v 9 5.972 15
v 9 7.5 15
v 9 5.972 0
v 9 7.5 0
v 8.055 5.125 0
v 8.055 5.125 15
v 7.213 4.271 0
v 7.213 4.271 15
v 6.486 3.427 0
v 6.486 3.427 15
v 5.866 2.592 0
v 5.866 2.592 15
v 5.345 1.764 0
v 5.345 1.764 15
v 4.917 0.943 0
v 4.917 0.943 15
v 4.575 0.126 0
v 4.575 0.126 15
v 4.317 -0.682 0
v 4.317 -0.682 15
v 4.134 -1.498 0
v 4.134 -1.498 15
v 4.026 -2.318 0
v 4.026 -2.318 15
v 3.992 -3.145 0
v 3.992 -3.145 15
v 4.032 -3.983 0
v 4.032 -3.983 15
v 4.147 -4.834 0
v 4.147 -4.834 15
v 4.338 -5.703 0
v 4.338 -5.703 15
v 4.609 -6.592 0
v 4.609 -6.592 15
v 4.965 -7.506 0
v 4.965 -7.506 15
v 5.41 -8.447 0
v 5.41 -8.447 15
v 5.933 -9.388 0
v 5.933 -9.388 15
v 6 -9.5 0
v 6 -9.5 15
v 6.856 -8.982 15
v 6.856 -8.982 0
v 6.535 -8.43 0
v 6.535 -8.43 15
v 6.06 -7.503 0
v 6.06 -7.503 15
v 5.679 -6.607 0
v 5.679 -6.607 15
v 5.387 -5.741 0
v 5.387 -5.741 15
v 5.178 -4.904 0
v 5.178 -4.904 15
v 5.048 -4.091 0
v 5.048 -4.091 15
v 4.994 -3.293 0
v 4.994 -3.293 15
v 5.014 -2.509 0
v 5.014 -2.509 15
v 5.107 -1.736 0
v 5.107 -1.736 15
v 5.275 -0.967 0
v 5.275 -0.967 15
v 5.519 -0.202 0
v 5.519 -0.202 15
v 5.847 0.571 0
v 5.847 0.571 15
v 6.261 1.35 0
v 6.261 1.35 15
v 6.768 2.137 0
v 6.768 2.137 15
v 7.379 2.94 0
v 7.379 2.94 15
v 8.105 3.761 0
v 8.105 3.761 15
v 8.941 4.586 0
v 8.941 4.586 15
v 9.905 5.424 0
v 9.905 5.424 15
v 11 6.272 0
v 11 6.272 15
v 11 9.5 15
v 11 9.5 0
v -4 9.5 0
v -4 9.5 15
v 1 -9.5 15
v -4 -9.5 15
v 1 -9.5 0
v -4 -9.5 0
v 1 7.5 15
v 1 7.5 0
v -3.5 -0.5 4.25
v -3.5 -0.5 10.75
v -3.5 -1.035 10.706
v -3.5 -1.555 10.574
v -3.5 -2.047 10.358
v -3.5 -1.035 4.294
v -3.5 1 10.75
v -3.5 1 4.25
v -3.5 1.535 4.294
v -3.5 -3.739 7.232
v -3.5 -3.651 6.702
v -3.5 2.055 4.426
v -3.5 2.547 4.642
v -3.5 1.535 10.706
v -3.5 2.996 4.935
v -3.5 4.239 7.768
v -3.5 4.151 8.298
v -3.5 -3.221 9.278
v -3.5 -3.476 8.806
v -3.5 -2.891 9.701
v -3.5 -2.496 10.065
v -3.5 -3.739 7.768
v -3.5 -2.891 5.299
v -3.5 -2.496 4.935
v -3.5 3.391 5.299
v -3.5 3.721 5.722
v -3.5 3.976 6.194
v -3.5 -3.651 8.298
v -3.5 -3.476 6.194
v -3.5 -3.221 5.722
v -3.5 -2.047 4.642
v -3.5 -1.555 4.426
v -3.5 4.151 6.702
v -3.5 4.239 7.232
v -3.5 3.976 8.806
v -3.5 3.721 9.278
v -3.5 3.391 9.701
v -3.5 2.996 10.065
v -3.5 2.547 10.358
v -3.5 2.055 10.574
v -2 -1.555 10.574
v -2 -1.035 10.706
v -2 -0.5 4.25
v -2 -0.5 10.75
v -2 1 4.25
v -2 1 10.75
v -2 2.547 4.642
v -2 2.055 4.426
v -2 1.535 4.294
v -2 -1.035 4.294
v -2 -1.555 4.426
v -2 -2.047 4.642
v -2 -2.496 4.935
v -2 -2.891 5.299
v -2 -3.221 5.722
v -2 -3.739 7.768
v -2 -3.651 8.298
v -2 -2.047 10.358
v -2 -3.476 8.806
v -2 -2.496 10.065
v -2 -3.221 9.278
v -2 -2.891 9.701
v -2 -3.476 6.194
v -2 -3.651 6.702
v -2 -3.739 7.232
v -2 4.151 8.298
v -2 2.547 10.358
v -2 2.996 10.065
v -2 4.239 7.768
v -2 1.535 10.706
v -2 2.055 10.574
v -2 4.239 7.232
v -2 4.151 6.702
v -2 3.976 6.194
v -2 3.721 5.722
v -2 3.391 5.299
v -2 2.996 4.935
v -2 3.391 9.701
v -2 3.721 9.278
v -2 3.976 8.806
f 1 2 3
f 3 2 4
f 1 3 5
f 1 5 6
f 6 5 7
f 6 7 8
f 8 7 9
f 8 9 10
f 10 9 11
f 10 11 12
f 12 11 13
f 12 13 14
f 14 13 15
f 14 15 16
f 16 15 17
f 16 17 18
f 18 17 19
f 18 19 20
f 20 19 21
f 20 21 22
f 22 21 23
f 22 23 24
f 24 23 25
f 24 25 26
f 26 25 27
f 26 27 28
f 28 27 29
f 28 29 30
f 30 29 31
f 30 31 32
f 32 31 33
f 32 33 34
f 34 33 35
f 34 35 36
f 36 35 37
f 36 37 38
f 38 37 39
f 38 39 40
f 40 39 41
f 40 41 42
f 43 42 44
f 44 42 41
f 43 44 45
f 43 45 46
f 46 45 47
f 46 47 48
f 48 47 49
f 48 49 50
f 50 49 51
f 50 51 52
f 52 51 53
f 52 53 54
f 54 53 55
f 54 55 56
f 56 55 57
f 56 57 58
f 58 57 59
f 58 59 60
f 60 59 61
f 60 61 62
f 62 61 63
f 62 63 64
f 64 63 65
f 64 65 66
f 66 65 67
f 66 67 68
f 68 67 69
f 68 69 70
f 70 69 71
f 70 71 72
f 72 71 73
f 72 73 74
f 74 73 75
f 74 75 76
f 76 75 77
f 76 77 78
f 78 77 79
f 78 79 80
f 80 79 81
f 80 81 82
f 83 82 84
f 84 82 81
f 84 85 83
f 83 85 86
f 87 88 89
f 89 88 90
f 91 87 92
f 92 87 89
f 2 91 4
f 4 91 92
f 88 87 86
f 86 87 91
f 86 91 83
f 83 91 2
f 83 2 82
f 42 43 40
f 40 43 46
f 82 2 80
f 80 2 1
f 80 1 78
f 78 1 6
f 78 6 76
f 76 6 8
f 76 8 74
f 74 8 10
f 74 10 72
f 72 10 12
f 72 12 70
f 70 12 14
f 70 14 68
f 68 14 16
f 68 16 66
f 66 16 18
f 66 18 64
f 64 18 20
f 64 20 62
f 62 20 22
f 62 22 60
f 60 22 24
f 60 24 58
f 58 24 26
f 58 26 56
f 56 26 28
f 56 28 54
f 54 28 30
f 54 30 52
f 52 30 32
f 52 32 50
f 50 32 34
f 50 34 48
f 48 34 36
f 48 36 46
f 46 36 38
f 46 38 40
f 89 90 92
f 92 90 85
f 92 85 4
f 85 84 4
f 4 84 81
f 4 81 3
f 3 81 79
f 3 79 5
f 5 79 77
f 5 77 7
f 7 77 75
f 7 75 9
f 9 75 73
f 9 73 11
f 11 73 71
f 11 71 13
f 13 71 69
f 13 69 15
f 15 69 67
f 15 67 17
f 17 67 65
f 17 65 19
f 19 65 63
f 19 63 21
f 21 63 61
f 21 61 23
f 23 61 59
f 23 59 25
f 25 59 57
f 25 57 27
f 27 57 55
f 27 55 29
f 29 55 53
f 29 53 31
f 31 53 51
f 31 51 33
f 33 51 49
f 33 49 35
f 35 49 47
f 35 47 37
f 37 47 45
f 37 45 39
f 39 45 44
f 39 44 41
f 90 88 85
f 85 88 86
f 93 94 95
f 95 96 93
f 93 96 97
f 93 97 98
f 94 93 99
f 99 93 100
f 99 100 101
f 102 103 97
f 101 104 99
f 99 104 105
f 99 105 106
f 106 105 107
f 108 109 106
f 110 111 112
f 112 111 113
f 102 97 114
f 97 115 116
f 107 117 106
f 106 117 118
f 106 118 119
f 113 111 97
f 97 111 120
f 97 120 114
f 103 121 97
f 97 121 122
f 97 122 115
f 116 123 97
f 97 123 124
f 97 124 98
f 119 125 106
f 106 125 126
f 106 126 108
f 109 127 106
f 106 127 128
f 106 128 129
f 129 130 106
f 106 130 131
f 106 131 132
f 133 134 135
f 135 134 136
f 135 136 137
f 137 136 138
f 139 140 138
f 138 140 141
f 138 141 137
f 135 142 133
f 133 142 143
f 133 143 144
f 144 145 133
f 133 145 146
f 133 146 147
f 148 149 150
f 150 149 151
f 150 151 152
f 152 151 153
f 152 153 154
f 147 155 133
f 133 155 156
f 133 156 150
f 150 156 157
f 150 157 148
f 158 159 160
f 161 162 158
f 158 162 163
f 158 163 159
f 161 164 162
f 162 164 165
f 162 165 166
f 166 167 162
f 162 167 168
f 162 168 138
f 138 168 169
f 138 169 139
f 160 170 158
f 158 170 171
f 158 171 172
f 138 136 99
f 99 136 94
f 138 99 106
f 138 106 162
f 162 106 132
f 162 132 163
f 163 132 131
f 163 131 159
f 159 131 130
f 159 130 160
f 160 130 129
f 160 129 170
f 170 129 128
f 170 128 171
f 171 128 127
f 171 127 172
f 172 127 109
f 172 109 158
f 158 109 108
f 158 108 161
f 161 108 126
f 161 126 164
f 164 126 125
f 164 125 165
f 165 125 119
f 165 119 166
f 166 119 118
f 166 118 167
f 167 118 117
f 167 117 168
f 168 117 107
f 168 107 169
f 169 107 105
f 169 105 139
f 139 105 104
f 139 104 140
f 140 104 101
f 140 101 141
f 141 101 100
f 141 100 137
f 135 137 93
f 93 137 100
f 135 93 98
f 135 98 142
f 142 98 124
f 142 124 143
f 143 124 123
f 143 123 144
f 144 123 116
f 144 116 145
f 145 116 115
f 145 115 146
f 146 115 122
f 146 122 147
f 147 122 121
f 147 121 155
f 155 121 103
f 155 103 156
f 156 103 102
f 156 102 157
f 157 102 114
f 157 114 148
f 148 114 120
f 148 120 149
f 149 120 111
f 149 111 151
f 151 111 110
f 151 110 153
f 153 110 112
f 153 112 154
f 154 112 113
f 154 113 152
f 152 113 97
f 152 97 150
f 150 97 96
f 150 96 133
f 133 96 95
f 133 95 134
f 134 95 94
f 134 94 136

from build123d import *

# Parameters (mm, degrees)
AUFSATZ_LINEAR_AUSTRAGEN1_DEPTH = 15
SKIZZE2_W                       = 15
SKIZZE2_H                       = 19
AUFSATZ_LINEAR_AUSTRAGEN2_DEPTH = 3
SCHNITT_LINEAR_AUSTRAGEN1_DEPTH = 2
SKIZZE5_W                       = 15
SKIZZE5_H                       = 19
AUFSATZ_LINEAR_AUSTRAGEN4_DEPTH = 0.5


# Read off the part's stored shape, not the designer's step: Aufsatz-Linear austragen1
with BuildPart() as part:
    # Aufsatz-Linear austragen1 outline → Aufsatz-Linear austragen1 (new body)
    with BuildSketch(Plane.XY):
        with BuildLine():
            Line((9, 7.5), (9, 5.971762746))
            add(Edge.make_bspline(
                [(9, 5.971762746), (0.820844208, -0.941876975), (6, -9.5)],
                knots=[0.100732064, 0.100732064, 0.100732064, 1, 1, 1], degree=2))
            Line((6, -9.5), (6.855533767, -8.982252983))
            add(Edge.make_bspline(
                [(11, 6.271626074), (10.77340825, 6.105599677), (10.141366733, 5.627846644), (8.84701886, 4.547968637), (7.334591853, 2.994846091), (6.045831159, 1.119520738), (5.251441489, -0.76880078), (4.926102544, -2.686703365), (5.056978024, -4.672427827), (5.564804841, -6.418461308), (6.213216116, -7.858576344), (6.635759495, -8.619102834), (6.855533767, -8.982252983)],
                knots=[0.028407204, 0.028407204, 0.028407204, 0.028407204, 0.0625, 0.125, 0.25, 0.375, 0.5, 0.625, 0.75, 0.875, 0.9375, 1, 1, 1, 1], degree=3))
            Line((11, 6.271626074), (11, 9.5))
            Line((11, 9.5), (-1, 9.5))
            Line((-1, 9.5), (-1, -9.5))
            Line((-1, -9.5), (1, -9.5))
            Line((1, -9.5), (1, 7.5))
            Line((1, 7.5), (9, 7.5))
        make_face()
    extrude(amount=AUFSATZ_LINEAR_AUSTRAGEN1_DEPTH)

    # Skizze2 → Aufsatz-Linear austragen2 (add)
    with BuildSketch(Plane.ZY.offset(1)):
        with Locations((7.5, 0)):
            Rectangle(SKIZZE2_W, SKIZZE2_H)
    extrude(amount=AUFSATZ_LINEAR_AUSTRAGEN2_DEPTH)

    # Skizze3 → Schnitt-Linear austragen1 (cut)
    with BuildSketch(Plane.ZY.offset(4)):
        with BuildLine():
            Line((4.25, -0.5), (4.25, 1))
            ThreePointArc((4.25, 1), (7.5, 4.25), (10.75, 1))
            Line((10.75, 1), (10.75, -0.5))
            ThreePointArc((10.75, -0.5), (7.5, -3.75), (4.25, -0.5))
        make_face()
    extrude(amount=-SCHNITT_LINEAR_AUSTRAGEN1_DEPTH, mode=Mode.SUBTRACT)

    # Skizze5 → Aufsatz-Linear austragen4 (add)
    with BuildSketch(Plane.ZY.offset(4)):
        with Locations((7.5, 0)):
            Rectangle(SKIZZE5_W, SKIZZE5_H)
    extrude(amount=-AUFSATZ_LINEAR_AUSTRAGEN4_DEPTH)


solid = part.part
